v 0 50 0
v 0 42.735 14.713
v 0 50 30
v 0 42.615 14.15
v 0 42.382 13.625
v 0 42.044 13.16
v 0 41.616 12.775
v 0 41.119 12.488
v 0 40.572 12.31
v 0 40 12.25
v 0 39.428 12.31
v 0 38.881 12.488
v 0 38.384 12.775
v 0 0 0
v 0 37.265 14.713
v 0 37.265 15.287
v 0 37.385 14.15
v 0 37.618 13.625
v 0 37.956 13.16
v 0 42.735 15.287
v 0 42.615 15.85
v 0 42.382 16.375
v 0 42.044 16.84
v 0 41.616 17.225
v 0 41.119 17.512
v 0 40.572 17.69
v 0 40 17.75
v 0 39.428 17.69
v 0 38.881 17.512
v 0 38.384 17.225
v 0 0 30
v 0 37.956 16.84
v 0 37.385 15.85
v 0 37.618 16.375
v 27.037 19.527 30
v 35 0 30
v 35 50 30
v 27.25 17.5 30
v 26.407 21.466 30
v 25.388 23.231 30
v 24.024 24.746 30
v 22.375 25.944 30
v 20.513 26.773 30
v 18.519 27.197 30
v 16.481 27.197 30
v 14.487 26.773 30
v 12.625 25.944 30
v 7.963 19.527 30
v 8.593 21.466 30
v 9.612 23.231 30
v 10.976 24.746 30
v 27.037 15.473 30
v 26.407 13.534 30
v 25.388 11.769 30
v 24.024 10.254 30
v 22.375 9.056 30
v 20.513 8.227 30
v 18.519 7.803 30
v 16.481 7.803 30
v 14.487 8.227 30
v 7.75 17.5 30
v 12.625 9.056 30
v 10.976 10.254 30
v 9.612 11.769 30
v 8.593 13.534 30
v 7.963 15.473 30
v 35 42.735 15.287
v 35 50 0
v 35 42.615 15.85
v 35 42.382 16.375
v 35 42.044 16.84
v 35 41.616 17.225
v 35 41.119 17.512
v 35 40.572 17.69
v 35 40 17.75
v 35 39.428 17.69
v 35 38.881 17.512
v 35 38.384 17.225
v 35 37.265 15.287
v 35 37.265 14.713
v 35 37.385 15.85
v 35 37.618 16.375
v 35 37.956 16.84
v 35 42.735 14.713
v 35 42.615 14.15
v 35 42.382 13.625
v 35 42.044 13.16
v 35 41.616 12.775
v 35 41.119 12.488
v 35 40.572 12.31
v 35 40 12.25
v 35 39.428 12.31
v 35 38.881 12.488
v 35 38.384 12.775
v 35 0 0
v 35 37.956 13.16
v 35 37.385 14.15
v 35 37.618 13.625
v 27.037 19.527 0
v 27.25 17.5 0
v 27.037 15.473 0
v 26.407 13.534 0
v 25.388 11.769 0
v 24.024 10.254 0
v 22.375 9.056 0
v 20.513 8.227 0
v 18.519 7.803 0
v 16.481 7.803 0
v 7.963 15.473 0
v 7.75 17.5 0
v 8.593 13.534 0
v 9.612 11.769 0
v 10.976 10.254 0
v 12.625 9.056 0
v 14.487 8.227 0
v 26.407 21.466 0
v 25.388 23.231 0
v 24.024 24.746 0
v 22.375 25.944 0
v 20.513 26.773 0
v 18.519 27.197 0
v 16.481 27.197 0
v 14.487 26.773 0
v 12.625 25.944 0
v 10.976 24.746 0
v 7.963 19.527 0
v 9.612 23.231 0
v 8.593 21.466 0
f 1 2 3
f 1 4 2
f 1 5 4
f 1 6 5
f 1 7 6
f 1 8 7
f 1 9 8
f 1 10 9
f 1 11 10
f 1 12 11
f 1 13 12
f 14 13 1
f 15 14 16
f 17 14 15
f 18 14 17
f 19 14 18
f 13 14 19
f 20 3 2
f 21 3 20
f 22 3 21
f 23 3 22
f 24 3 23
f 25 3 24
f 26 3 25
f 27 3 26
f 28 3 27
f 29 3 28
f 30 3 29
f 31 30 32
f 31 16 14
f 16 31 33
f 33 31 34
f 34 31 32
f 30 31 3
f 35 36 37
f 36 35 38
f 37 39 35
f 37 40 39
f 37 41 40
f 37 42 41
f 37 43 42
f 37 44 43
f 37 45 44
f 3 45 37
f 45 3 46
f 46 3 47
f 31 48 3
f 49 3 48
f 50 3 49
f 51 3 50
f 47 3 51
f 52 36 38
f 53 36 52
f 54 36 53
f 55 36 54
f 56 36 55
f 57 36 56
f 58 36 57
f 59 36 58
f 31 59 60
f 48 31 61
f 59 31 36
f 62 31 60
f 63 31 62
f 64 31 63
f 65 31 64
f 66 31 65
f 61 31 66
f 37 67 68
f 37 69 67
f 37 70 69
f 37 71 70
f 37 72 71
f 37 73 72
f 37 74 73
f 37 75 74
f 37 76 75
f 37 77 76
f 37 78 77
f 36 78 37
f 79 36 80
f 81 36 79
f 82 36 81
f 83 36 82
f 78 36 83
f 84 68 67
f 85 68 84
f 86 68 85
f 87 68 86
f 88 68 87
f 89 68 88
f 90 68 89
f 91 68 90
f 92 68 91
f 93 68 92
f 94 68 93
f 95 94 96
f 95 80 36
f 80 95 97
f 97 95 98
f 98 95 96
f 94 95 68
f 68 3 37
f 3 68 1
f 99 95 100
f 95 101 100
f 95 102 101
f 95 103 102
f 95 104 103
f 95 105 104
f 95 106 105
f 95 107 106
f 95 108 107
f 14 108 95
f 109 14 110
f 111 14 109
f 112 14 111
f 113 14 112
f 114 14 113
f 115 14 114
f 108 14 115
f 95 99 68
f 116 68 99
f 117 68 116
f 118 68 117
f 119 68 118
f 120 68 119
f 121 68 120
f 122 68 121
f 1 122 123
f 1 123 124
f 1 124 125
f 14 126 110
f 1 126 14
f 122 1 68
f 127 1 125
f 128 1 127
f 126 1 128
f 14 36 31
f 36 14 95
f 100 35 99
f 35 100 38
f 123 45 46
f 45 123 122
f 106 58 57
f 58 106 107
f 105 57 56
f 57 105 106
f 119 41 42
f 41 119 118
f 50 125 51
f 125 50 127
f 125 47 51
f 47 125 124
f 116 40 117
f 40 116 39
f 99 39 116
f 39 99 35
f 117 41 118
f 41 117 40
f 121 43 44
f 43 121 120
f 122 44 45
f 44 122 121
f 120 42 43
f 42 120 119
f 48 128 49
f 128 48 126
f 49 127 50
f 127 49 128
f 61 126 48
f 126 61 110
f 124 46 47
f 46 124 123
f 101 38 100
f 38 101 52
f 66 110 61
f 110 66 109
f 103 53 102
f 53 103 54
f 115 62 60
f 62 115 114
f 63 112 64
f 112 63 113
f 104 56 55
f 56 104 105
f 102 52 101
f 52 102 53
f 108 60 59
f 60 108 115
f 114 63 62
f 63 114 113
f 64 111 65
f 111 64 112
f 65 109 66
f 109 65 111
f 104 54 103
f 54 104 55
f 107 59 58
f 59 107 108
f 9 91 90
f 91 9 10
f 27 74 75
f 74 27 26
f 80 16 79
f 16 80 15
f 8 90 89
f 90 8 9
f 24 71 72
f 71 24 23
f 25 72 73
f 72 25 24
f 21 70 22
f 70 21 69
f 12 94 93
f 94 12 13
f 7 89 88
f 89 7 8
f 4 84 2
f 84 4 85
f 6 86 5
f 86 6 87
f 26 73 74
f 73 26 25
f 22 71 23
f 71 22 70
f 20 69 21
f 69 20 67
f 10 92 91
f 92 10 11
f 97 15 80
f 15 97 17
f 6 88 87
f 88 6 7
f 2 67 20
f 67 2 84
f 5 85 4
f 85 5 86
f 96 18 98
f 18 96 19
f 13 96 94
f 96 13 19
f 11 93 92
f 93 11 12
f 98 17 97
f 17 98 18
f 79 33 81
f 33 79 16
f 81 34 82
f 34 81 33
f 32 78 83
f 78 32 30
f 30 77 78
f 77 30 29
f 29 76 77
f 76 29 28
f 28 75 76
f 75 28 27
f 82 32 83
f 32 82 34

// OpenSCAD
$fn=30;
difference(){
cube([35,50,30]);
translate([17.5,17.5,-1])cylinder(d=19.5,h=40);
translate([0,40,15])rotate([0,90,0])cylinder(d=5.5,h=40);
}
